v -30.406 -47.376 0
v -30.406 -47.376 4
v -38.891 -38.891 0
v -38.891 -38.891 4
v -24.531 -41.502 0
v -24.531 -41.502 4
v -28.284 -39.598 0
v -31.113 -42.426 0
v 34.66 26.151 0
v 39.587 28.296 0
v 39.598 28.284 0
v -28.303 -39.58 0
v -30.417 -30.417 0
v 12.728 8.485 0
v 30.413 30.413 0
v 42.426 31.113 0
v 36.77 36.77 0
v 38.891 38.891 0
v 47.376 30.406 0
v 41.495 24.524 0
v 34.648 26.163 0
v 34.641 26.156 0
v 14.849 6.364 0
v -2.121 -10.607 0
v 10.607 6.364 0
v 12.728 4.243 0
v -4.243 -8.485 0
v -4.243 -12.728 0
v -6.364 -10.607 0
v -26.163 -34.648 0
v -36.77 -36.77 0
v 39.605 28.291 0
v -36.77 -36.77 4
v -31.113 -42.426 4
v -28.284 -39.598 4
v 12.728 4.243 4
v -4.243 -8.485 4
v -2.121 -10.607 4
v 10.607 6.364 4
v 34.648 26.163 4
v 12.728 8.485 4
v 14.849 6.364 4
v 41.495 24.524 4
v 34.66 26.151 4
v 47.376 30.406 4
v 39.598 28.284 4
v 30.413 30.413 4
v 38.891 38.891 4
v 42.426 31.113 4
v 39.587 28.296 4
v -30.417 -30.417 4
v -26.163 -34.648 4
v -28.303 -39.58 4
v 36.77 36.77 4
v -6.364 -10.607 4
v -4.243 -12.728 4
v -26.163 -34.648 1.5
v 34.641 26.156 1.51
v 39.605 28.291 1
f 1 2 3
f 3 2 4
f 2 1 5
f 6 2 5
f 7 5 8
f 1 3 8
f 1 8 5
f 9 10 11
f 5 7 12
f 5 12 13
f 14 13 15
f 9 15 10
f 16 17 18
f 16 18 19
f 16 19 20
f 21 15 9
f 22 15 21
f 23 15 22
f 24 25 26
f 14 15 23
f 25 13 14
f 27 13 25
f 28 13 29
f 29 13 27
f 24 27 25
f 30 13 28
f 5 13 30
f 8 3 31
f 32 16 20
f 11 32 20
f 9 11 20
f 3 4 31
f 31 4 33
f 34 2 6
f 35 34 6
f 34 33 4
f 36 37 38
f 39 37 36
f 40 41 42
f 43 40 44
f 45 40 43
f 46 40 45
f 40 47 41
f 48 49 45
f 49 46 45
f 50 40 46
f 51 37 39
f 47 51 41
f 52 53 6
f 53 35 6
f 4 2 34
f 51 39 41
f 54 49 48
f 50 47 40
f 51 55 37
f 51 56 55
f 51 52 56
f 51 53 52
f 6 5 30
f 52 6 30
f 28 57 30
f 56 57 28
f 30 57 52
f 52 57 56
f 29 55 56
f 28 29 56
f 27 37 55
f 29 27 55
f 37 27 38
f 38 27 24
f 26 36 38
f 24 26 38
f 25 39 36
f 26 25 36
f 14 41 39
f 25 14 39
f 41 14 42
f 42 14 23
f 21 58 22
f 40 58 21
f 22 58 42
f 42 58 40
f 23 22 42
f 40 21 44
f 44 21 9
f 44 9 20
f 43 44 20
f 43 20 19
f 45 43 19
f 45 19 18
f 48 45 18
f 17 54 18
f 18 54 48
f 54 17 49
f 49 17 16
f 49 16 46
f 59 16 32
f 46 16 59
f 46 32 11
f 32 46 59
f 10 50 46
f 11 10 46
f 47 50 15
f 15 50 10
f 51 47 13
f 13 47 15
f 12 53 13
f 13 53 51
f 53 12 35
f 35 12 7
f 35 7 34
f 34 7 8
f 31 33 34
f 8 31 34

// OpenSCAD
// file: shapes.scad
/*
 *  OpenSCAD Shapes Library (www.openscad.at)
 *  Copyright (C) 2009  Catarina Mota <clifford@clifford.at>
 *
 *  This program is free software; you can redistribute it and/or modify
 *  it under the terms of the GNU General Public License as published by
 *  the Free Software Foundation; either version 2 of the License, or
 *  (at your option) any later version.
 *
 *  This program is distributed in the hope that it will be useful,
 *  but WITHOUT ANY WARRANTY; without even the implied warranty of
 *  MERCHANTABILITY or FITNESS FOR A PARTICULAR PURPOSE.  See the
 *  GNU General Public License for more details.
 *
 *  You should have received a copy of the GNU General Public License
 *  along with this program; if not, write to the Free Software
 *  Foundation, Inc., 59 Temple Place, Suite 330, Boston, MA  02111-1307  USA
 *
*/


//box(width, height, depth);
//roundedBox(width, height, depth, factor);
//cone(height, radius);
//oval(width, height, depth);
//tube(height, radius, wall);
//ovalTube(width, height, depth, wall);
//hexagon(height, depth);
//octagon(height, depth);
//dodecagon(height, depth);
//hexagram(height, depth);
//rightTriangle(adjacent, opposite, depth);
//equiTriangle(side, depth);
//12ptStar(height, depth);

//----------------------

//roundedBox(120, 60, 3, 8);

//----------------------

module box(w,h,d) {
	scale ([w,h,d]) cube(1, true);
}

module roundedBox(w,h,d,f){
	difference(){
		box(w,h,d);
		translate([-w/2,h/2,0]) cube(w/(f/2),true);
		translate([w/2,h/2,0]) cube(w/(f/2),true);
		translate([-w/2,-h/2,0]) cube(w/(f/2),true);
		translate([w/2,-h/2,0]) cube(w/(f/2),true);
	}
	translate([-w/2+w/f,h/2-w/f,-d/2]) cylinder(d,w/f, w/f);
	translate([w/2-w/f,h/2-w/f,-d/2]) cylinder(d,w/f, w/f);
	translate([-w/2+w/f,-h/2+w/f,-d/2]) cylinder(d,w/f, w/f);
	translate([w/2-w/f,-h/2+w/f,-d/2]) cylinder(d,w/f, w/f);
}

module cone(height, radius) {
		cylinder(height, radius, 0);
}

module oval(w,h,d) {
	scale ([w/100, h/100, 1]) cylinder(d, 50, 50);
}

module tube(height, radius, wall) {
	difference(){
		cylinder(height, radius, radius);
		cylinder(height, radius-wall, radius-wall);
	}
}

module ovalTube(w,h,d,wall) {
	difference(){
		scale ([w/100, h/100, 1]) cylinder(d, 50, 50);
		scale ([w/100, h/100, 1]) cylinder(d, 50-wall, 50-wall);
	}
}

module hexagon(height, depth) {
	boxWidth=height/1.75;
		union(){
			box(boxWidth, height, depth);
			rotate([0,0,60]) box(boxWidth, height, depth);
			rotate([0,0,-60]) box(boxWidth, height, depth);
		}
}

module octagon(height, depth) {
	intersection(){
		box(height, height, depth);
		rotate([0,0,45]) box(height, height, depth);
	}
}

module dodecagon(height, depth) {
	intersection(){
		hexagon(height, depth);
		rotate([0,0,90]) hexagon(height, depth);
	}
}

module hexagram(height, depth) {
	boxWidth=height/1.75;
	intersection(){
		box(height, boxWidth, depth);
		rotate([0,0,60]) box(height, boxWidth, depth);
	}
	intersection(){
		box(height, boxWidth, depth);
		rotate([0,0,-60]) box(height, boxWidth, depth);
	}
	intersection(){
		rotate([0,0,60]) box(height, boxWidth, depth);
		rotate([0,0,-60]) box(height, boxWidth, depth);
	}
}

module rightTriangle(adjacent, opposite, depth) {
	difference(){
		translate([-adjacent/2,opposite/2,0]) box(adjacent, opposite, depth);
		translate([-adjacent,0,0]){
			rotate([0,0,atan(opposite/adjacent)]) dislocateBox(adjacent*4, opposite, depth);
		}
	}
}

module equiTriangle(side, depth) {
	difference(){
		translate([-side/2,side/2,0]) box(side, side, depth);
		rotate([0,0,30]) dislocateBox(side*2, side, depth);
		translate([-side,0,0]){
			rotate([0,0,60]) dislocateBox(side*2, side, depth);
		}
	}
}

module 12ptStar(height, depth) {
	starNum=3;
	starAngle=360/starNum;
	for (s=[1:starNum]){
		rotate([0, 0, s*starAngle]) box(height, height, depth);
	}
}

//-----------------------
//MOVES THE ROTATION AXIS OF A BOX FROM ITS CENTER TO THE BOTTOM LEFT CORNER
module dislocateBox(w,h,d){
	translate([w/2,h,0]){
		difference(){
			box(w, h*2, d+1);
			translate([-w,0,0]) box(w, h*2, d+1);
		}
	}
}
// main file
include <shapes.scad>  // using Catarina Mota's shapes library
//translate ([0,0,0]) cross_braces ();
//translate ([0,35,0]) cross_braces ();
rotate ([0,0,45]) sided();

module sided ()
{
difference ()
{
	rotate ([90,0,0]) cross_braces ();
	rotate ([90,0,0]) translate ([12,0,3]) cube ([3,4,5]);
	rotate ([90,0,0]) translate ([-12,0,3]) cube ([3,4,5]);

}
}

module cross_braces ()
{
union ()
{
	difference ()
	{
		translate ([-55,0,0]) cube ([110,4,12]);
		translate ([-43,0,6]) cube (86,5,6);
		translate ([-43,1.5,12.5]) rotate ([90,270,0]) rightTriangle(6.5,4,5);
		translate ([-52,0,0]) cube ([4,5,8]);
		translate ([-48.01,1,-0.01]) rotate ([90,90,0]) rightTriangle(8,5,6.01);
		translate ([42.99,1.51,12.5]) rotate ([270,270,0]) rightTriangle(6.5,4,5);
		translate ([48,0,0]) cube ([4,5,8]);
		translate ([48.01,1,0]) rotate ([270,90,0]) rightTriangle(8,5,6.01);
	}
}
}
